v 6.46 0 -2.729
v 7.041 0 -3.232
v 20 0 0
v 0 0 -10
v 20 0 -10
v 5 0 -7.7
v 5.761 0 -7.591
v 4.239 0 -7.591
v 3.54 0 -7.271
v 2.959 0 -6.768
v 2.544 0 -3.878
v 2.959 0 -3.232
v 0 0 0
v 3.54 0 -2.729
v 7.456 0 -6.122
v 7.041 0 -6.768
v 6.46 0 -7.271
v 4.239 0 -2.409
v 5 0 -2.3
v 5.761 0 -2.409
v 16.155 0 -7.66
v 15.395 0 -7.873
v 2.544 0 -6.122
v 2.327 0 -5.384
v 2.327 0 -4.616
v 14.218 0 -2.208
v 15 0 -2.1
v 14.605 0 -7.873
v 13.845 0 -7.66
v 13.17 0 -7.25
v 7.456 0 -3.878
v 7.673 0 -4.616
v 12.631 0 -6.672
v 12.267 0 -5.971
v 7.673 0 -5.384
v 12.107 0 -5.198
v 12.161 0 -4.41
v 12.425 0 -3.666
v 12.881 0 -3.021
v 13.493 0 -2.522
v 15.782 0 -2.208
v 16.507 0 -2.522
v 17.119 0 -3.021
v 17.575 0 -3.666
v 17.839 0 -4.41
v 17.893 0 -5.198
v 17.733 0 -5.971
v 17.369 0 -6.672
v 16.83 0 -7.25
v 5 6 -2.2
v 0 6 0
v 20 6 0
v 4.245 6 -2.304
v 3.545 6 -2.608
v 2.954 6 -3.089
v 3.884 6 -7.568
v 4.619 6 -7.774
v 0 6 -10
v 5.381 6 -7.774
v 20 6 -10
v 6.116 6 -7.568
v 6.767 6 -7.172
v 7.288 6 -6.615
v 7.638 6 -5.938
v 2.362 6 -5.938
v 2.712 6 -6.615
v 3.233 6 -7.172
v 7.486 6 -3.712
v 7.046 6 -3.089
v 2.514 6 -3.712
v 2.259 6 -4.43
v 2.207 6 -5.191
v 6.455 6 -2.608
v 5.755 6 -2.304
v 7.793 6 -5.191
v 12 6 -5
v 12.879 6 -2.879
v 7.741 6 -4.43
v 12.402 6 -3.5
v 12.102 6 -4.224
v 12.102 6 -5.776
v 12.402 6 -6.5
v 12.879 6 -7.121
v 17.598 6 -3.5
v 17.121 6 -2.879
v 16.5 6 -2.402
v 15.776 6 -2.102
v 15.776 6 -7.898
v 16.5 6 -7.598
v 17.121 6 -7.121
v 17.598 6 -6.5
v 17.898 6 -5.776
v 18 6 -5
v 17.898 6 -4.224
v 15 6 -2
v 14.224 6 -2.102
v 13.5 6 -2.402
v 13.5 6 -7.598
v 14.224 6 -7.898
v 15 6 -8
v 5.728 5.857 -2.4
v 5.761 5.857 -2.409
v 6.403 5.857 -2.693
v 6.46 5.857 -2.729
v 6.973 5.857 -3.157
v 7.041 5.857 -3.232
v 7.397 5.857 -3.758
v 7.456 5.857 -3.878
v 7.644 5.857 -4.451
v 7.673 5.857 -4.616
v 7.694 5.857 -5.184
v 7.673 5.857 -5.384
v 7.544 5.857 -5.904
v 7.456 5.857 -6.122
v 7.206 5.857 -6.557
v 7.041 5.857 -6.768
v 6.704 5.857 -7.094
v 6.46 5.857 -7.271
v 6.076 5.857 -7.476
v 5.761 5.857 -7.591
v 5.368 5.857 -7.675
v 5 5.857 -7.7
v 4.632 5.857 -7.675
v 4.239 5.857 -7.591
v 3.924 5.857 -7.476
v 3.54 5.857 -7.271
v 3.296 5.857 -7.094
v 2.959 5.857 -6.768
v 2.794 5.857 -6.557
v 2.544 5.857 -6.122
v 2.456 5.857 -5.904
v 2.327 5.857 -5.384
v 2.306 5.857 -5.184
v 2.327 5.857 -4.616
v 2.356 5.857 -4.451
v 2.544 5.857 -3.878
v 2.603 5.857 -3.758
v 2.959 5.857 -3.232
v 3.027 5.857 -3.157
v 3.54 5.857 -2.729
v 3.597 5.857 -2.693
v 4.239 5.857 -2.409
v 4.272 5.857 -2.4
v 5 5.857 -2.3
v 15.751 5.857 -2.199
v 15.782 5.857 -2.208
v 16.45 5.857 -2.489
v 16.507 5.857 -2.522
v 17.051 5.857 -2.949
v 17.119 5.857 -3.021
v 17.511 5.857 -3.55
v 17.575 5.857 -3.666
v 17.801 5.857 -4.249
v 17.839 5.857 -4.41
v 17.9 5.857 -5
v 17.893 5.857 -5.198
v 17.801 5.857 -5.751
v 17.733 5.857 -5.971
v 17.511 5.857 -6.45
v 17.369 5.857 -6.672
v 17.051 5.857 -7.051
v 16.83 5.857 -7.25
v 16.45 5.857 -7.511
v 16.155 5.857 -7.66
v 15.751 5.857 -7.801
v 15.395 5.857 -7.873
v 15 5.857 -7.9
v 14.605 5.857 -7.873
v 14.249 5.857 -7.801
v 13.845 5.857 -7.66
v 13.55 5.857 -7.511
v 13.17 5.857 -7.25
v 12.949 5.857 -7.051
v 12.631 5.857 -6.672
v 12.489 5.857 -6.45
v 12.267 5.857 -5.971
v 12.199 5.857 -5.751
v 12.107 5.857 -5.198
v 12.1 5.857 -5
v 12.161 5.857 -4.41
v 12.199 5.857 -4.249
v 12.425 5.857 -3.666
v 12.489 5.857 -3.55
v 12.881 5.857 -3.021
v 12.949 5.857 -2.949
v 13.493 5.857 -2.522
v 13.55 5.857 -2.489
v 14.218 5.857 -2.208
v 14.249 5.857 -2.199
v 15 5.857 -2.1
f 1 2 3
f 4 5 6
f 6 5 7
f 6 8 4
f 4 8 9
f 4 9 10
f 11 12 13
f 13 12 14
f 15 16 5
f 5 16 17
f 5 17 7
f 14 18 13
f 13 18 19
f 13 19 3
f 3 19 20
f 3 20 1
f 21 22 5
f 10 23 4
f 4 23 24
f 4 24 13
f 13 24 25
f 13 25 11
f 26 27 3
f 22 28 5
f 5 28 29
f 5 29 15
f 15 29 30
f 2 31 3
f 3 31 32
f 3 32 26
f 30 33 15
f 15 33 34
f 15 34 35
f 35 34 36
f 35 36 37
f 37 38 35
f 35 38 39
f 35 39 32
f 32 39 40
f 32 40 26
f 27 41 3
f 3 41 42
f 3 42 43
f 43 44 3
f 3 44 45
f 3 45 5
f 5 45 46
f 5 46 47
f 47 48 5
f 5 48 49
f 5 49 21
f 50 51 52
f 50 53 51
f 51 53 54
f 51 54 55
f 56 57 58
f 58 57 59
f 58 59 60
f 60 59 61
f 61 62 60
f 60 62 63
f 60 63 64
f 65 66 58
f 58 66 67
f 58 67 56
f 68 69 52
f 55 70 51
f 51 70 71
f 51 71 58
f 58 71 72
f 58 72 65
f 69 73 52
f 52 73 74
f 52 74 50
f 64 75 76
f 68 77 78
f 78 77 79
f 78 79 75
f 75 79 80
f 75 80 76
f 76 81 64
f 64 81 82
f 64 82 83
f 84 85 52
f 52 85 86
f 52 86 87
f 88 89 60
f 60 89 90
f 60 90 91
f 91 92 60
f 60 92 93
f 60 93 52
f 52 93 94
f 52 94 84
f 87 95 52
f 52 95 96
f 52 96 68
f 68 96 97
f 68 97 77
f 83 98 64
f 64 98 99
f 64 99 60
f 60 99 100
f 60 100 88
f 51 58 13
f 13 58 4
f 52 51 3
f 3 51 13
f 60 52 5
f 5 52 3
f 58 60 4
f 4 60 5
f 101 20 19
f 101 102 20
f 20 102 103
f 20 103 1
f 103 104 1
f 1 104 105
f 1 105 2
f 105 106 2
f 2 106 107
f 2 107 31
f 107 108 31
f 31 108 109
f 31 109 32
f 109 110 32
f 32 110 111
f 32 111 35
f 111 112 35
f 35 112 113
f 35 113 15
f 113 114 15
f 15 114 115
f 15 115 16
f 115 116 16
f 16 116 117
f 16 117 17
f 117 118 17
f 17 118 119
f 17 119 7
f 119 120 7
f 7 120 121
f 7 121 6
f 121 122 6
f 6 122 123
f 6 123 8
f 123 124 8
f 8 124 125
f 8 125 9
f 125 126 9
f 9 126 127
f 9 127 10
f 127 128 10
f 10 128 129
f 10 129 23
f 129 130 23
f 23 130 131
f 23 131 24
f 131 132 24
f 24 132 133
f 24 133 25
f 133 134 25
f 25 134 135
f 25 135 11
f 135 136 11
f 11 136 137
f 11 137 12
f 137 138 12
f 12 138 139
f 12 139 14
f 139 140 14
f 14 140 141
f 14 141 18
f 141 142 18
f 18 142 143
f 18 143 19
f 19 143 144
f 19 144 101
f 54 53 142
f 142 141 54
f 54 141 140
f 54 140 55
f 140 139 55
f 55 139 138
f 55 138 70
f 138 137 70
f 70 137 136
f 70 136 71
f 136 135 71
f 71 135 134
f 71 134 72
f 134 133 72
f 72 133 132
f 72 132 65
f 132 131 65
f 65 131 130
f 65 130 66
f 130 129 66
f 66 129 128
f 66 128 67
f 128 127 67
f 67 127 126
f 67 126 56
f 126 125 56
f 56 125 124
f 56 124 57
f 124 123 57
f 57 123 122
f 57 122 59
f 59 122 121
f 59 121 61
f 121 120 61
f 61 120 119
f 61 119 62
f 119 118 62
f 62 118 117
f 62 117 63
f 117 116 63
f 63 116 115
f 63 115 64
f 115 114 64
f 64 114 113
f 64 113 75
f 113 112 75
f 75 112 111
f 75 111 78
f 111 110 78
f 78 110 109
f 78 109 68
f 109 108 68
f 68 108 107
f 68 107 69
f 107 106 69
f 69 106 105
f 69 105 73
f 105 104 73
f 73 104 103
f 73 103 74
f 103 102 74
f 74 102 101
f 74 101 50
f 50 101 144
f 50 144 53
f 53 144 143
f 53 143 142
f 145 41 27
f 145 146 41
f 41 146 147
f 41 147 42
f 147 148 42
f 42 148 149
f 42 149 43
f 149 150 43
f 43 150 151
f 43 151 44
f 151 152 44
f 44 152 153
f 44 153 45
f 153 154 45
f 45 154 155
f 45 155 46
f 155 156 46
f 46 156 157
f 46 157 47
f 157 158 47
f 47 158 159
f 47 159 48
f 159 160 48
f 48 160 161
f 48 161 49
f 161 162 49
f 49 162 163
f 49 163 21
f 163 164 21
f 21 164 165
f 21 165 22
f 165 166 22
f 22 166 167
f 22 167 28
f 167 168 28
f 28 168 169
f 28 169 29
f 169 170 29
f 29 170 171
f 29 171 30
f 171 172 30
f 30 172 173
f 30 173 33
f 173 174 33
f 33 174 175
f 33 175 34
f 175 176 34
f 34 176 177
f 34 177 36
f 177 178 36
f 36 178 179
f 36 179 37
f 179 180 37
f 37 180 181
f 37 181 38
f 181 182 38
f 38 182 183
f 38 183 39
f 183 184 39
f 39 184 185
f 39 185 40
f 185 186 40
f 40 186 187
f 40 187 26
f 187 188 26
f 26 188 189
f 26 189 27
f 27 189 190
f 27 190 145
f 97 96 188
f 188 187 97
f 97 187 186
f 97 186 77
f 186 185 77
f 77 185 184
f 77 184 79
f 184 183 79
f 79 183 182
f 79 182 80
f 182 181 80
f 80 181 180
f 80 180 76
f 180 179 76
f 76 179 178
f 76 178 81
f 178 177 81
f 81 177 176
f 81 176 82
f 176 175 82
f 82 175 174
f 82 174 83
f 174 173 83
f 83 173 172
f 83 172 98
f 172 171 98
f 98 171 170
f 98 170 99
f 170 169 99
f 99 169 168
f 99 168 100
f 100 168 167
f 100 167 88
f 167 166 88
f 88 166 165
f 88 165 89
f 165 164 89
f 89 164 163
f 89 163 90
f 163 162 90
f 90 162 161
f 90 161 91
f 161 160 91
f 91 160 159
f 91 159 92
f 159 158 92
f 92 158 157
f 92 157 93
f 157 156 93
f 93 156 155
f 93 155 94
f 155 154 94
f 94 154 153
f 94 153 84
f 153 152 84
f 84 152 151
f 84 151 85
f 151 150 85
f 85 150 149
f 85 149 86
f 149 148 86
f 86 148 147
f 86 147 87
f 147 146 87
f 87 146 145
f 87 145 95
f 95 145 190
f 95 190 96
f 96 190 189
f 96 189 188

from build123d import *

# Parameters (mm, degrees)
SKETCH1_W                            = 20
SKETCH1_H                            = 10
BOSS_EXTRUDE1_DEPTH                  = 6
F_5_4_5_4_DIAMETER_HOLE1_D           = 5.4
F_5_4_5_4_DIAMETER_HOLE1_CSINK_D     = 5.6
F_5_4_5_4_DIAMETER_HOLE1_CSINK_ANGLE = 70
F_5_8_5_8_DIAMETER_HOLE1_D           = 5.8
F_5_8_5_8_DIAMETER_HOLE1_CSINK_D     = 6
F_5_8_5_8_DIAMETER_HOLE1_CSINK_ANGLE = 70


with BuildPart() as part:
    # Sketch1 → Boss-Extrude1 (new body)
    with BuildSketch(Plane(origin=(0, 0, 0), x_dir=(1, 0, 0), z_dir=(0, 1, 0))):
        with Locations((10, 5)):
            Rectangle(SKETCH1_W, SKETCH1_H)
    extrude(amount=BOSS_EXTRUDE1_DEPTH)

    # Ø5.4 (5.4) Diameter Hole1 (through all)
    with Locations(Plane(origin=(0, 6, 0), x_dir=(1, 0, 0), z_dir=(0, 1, 0))):
        with Locations((5, 5)):
            CounterSinkHole(F_5_4_5_4_DIAMETER_HOLE1_D / 2, F_5_4_5_4_DIAMETER_HOLE1_CSINK_D / 2, counter_sink_angle=F_5_4_5_4_DIAMETER_HOLE1_CSINK_ANGLE)

    # Ø5.8 (5.8) Diameter Hole1 (through all)
    with Locations(Plane(origin=(0, 6, 0), x_dir=(1, 0, 0), z_dir=(0, 1, 0))):
        with Locations((15, 5)):
            CounterSinkHole(F_5_8_5_8_DIAMETER_HOLE1_D / 2, F_5_8_5_8_DIAMETER_HOLE1_CSINK_D / 2, counter_sink_angle=F_5_8_5_8_DIAMETER_HOLE1_CSINK_ANGLE)


solid = part.part
